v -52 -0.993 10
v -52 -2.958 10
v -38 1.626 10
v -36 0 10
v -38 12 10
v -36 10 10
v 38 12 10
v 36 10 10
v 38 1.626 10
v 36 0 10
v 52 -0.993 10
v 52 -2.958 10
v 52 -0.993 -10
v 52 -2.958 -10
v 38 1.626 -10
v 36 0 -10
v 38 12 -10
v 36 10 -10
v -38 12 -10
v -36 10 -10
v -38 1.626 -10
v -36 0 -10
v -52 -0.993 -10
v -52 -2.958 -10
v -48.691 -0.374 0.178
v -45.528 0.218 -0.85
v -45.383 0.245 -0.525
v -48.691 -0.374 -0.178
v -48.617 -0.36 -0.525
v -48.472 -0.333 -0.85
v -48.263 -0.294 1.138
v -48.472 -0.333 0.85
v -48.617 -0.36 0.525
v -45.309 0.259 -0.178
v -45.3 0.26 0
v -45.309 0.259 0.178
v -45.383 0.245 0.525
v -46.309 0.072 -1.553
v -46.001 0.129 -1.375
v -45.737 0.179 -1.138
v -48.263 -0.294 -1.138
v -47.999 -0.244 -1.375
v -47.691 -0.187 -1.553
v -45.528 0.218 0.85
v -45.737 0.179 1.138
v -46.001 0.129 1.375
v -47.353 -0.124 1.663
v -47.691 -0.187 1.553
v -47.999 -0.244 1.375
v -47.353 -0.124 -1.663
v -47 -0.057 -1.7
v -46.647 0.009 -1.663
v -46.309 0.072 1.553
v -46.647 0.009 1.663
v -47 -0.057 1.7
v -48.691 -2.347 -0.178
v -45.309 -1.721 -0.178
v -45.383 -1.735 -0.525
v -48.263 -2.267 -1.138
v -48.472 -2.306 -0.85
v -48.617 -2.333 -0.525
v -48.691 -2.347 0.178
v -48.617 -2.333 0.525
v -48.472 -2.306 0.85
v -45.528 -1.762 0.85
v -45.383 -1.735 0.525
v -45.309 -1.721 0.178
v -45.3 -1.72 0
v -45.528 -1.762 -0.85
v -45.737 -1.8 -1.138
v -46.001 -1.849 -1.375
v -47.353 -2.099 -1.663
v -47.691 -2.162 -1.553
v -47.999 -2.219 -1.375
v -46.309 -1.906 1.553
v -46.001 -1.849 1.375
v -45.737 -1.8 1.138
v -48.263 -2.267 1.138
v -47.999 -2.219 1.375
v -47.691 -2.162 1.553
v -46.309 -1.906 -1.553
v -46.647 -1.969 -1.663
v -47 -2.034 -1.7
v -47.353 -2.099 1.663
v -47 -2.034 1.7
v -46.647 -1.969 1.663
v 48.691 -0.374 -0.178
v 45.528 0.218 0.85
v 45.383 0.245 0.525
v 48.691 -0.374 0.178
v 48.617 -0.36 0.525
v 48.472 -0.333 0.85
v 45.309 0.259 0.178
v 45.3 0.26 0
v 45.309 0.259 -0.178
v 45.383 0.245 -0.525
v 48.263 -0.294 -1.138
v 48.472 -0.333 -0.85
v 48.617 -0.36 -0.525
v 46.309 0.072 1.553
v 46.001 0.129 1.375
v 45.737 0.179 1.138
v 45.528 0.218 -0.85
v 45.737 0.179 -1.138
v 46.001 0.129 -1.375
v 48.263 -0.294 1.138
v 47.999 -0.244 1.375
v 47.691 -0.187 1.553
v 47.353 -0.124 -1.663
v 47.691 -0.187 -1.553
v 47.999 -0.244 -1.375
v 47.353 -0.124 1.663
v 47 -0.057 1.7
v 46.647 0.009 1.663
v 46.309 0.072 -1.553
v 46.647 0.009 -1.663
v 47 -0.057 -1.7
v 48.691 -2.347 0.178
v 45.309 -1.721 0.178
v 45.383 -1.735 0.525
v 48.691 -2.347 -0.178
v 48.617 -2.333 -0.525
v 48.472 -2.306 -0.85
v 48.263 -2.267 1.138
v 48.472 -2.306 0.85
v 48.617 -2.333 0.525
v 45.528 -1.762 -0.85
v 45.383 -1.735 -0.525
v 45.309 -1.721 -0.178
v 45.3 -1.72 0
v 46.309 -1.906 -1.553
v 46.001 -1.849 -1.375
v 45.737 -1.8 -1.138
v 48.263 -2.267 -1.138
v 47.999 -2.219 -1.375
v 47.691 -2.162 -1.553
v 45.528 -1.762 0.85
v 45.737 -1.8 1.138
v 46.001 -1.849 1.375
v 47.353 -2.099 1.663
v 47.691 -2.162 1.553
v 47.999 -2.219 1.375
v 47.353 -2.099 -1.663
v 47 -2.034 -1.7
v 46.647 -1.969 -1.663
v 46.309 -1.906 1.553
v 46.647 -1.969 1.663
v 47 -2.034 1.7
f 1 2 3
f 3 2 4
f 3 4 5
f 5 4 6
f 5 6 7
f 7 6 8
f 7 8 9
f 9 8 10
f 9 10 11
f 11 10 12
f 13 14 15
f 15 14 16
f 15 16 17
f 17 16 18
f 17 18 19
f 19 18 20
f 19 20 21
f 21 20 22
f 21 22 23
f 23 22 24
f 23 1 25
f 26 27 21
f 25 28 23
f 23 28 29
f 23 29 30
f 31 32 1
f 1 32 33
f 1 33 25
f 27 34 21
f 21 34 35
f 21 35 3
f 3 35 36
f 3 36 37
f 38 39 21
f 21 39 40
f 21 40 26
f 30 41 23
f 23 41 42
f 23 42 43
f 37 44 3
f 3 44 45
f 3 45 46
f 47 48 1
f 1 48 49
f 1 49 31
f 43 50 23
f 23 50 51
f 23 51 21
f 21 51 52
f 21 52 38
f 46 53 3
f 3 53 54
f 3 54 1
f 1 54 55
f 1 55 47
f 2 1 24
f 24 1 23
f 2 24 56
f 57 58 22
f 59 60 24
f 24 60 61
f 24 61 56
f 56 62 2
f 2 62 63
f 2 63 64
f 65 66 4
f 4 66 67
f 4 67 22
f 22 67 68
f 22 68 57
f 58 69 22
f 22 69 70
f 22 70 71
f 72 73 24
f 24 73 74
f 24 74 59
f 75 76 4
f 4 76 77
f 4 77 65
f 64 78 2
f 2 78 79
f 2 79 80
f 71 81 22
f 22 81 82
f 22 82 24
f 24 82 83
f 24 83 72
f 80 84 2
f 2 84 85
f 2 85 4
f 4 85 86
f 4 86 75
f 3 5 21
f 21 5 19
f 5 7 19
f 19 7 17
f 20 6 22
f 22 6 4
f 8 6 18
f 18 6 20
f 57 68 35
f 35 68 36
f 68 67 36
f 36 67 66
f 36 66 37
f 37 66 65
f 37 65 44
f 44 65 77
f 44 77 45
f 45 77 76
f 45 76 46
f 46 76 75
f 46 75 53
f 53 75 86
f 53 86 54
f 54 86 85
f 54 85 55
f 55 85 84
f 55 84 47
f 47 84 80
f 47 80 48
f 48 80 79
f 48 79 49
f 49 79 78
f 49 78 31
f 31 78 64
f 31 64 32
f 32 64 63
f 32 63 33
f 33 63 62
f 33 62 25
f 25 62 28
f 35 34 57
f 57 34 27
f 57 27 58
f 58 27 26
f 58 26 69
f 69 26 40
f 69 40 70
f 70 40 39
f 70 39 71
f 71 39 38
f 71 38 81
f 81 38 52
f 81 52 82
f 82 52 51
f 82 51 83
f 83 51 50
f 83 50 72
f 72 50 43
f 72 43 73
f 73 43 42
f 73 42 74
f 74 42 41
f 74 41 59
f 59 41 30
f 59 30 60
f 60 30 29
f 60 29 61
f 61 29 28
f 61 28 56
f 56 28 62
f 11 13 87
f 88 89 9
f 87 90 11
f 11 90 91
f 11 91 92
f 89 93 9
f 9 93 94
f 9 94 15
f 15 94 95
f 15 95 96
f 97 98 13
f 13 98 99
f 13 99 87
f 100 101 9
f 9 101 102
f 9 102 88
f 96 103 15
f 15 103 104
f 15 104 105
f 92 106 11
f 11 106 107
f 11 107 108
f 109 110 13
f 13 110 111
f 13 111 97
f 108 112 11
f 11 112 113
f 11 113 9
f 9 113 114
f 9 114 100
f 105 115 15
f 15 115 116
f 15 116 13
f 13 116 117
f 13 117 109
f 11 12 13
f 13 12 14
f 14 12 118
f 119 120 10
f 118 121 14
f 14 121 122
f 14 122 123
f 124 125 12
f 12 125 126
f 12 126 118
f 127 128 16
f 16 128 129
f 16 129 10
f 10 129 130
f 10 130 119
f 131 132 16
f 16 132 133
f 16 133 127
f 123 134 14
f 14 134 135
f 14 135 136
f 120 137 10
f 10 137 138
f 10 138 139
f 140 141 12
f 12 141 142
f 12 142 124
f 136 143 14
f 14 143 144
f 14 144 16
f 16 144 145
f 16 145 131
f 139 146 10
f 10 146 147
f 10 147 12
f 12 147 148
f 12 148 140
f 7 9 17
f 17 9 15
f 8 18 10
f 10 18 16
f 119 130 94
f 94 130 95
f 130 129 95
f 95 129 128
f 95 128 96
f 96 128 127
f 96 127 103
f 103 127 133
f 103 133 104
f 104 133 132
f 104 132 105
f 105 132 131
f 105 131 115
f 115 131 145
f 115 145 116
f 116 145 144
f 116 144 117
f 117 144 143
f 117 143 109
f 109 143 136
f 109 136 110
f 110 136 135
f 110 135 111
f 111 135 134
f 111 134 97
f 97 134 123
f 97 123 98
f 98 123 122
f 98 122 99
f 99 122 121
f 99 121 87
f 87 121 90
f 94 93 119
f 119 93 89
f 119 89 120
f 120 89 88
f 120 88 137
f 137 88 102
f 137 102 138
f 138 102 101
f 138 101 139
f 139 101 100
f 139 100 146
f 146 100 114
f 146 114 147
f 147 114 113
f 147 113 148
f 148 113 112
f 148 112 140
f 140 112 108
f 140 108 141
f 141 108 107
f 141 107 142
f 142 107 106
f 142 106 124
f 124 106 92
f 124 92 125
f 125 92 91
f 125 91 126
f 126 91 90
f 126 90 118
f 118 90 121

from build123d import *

# Parameters (mm, degrees)
BOSS_EXTRU_5_DEPTH      = 10
ESQUISSE1_W             = 38
ESQUISSE1_H             = 20
BOSS_EXTRU_6_DEPTH      = 12
ESQUISSE1_9_W           = 36
ESQUISSE1_9_H           = 20
ENL_V_MAT_EXTRU_4_DEPTH = 10
ESQUISSE1_10_R          = 1.7
ENL_V_MAT_EXTRU_5_DEPTH = 55.295487842


with BuildPart() as part:
    # Esquisse3 → Boss.-Extru.5 (new, symmetric)
    with BuildSketch(Plane.XY):
        Polygon((-36, 0), (-52, -2.958401047), (-52, -0.992722896), (-36, 2), align=None)
    boss_extru_5 = extrude(amount=BOSS_EXTRU_5_DEPTH, both=True)

    # Esquisse1 → Boss.-Extru.6 (add)
    with BuildSketch(Plane(origin=(0, 0, 0), x_dir=(1, 0, 0), z_dir=(0, 1, 0))):
        with Locations((-19, 0)):
            Rectangle(ESQUISSE1_W, ESQUISSE1_H)
    boss_extru_6 = extrude(amount=BOSS_EXTRU_6_DEPTH)

    # Esquisse1<9> → Enlèv. mat.-Extru.4 (cut)
    with BuildSketch(Plane(origin=(0, 0, 0), x_dir=(1, 0, 0), z_dir=(0, 1, 0))):
        with Locations((-18, 0)):
            Rectangle(ESQUISSE1_9_W, ESQUISSE1_9_H)
    enl_v_mat_extru_4 = extrude(amount=ENL_V_MAT_EXTRU_4_DEPTH, mode=Mode.SUBTRACT)

    # Esquisse1<10> → Enlèv. mat.-Extru.5 (cut, symmetric)
    with BuildSketch(Plane(origin=(0, 0, 0), x_dir=(1, 0, 0), z_dir=(0, 1, 0))):
        with Locations((-47, 0)):
            Circle(ESQUISSE1_10_R)
    enl_v_mat_extru_5 = extrude(amount=ENL_V_MAT_EXTRU_5_DEPTH, both=True, mode=Mode.SUBTRACT)

    # Symétrie4: Boss.-Extru.5, Boss.-Extru.6, Enlèv. mat.-Extru.4, Enlèv. mat.-Extru.5 across plane
    add(boss_extru_5.mirror(Plane(origin=(0, 0, 0), x_dir=(0, 0, 1), z_dir=(1, 0, 0))))
    add(boss_extru_6.mirror(Plane(origin=(0, 0, 0), x_dir=(0, 0, 1), z_dir=(1, 0, 0))))
    add(enl_v_mat_extru_4.mirror(Plane(origin=(0, 0, 0), x_dir=(0, 0, 1), z_dir=(1, 0, 0))), mode=Mode.SUBTRACT)
    add(enl_v_mat_extru_5.mirror(Plane(origin=(0, 0, 0), x_dir=(0, 0, 1), z_dir=(1, 0, 0))), mode=Mode.SUBTRACT)


solid = part.part
